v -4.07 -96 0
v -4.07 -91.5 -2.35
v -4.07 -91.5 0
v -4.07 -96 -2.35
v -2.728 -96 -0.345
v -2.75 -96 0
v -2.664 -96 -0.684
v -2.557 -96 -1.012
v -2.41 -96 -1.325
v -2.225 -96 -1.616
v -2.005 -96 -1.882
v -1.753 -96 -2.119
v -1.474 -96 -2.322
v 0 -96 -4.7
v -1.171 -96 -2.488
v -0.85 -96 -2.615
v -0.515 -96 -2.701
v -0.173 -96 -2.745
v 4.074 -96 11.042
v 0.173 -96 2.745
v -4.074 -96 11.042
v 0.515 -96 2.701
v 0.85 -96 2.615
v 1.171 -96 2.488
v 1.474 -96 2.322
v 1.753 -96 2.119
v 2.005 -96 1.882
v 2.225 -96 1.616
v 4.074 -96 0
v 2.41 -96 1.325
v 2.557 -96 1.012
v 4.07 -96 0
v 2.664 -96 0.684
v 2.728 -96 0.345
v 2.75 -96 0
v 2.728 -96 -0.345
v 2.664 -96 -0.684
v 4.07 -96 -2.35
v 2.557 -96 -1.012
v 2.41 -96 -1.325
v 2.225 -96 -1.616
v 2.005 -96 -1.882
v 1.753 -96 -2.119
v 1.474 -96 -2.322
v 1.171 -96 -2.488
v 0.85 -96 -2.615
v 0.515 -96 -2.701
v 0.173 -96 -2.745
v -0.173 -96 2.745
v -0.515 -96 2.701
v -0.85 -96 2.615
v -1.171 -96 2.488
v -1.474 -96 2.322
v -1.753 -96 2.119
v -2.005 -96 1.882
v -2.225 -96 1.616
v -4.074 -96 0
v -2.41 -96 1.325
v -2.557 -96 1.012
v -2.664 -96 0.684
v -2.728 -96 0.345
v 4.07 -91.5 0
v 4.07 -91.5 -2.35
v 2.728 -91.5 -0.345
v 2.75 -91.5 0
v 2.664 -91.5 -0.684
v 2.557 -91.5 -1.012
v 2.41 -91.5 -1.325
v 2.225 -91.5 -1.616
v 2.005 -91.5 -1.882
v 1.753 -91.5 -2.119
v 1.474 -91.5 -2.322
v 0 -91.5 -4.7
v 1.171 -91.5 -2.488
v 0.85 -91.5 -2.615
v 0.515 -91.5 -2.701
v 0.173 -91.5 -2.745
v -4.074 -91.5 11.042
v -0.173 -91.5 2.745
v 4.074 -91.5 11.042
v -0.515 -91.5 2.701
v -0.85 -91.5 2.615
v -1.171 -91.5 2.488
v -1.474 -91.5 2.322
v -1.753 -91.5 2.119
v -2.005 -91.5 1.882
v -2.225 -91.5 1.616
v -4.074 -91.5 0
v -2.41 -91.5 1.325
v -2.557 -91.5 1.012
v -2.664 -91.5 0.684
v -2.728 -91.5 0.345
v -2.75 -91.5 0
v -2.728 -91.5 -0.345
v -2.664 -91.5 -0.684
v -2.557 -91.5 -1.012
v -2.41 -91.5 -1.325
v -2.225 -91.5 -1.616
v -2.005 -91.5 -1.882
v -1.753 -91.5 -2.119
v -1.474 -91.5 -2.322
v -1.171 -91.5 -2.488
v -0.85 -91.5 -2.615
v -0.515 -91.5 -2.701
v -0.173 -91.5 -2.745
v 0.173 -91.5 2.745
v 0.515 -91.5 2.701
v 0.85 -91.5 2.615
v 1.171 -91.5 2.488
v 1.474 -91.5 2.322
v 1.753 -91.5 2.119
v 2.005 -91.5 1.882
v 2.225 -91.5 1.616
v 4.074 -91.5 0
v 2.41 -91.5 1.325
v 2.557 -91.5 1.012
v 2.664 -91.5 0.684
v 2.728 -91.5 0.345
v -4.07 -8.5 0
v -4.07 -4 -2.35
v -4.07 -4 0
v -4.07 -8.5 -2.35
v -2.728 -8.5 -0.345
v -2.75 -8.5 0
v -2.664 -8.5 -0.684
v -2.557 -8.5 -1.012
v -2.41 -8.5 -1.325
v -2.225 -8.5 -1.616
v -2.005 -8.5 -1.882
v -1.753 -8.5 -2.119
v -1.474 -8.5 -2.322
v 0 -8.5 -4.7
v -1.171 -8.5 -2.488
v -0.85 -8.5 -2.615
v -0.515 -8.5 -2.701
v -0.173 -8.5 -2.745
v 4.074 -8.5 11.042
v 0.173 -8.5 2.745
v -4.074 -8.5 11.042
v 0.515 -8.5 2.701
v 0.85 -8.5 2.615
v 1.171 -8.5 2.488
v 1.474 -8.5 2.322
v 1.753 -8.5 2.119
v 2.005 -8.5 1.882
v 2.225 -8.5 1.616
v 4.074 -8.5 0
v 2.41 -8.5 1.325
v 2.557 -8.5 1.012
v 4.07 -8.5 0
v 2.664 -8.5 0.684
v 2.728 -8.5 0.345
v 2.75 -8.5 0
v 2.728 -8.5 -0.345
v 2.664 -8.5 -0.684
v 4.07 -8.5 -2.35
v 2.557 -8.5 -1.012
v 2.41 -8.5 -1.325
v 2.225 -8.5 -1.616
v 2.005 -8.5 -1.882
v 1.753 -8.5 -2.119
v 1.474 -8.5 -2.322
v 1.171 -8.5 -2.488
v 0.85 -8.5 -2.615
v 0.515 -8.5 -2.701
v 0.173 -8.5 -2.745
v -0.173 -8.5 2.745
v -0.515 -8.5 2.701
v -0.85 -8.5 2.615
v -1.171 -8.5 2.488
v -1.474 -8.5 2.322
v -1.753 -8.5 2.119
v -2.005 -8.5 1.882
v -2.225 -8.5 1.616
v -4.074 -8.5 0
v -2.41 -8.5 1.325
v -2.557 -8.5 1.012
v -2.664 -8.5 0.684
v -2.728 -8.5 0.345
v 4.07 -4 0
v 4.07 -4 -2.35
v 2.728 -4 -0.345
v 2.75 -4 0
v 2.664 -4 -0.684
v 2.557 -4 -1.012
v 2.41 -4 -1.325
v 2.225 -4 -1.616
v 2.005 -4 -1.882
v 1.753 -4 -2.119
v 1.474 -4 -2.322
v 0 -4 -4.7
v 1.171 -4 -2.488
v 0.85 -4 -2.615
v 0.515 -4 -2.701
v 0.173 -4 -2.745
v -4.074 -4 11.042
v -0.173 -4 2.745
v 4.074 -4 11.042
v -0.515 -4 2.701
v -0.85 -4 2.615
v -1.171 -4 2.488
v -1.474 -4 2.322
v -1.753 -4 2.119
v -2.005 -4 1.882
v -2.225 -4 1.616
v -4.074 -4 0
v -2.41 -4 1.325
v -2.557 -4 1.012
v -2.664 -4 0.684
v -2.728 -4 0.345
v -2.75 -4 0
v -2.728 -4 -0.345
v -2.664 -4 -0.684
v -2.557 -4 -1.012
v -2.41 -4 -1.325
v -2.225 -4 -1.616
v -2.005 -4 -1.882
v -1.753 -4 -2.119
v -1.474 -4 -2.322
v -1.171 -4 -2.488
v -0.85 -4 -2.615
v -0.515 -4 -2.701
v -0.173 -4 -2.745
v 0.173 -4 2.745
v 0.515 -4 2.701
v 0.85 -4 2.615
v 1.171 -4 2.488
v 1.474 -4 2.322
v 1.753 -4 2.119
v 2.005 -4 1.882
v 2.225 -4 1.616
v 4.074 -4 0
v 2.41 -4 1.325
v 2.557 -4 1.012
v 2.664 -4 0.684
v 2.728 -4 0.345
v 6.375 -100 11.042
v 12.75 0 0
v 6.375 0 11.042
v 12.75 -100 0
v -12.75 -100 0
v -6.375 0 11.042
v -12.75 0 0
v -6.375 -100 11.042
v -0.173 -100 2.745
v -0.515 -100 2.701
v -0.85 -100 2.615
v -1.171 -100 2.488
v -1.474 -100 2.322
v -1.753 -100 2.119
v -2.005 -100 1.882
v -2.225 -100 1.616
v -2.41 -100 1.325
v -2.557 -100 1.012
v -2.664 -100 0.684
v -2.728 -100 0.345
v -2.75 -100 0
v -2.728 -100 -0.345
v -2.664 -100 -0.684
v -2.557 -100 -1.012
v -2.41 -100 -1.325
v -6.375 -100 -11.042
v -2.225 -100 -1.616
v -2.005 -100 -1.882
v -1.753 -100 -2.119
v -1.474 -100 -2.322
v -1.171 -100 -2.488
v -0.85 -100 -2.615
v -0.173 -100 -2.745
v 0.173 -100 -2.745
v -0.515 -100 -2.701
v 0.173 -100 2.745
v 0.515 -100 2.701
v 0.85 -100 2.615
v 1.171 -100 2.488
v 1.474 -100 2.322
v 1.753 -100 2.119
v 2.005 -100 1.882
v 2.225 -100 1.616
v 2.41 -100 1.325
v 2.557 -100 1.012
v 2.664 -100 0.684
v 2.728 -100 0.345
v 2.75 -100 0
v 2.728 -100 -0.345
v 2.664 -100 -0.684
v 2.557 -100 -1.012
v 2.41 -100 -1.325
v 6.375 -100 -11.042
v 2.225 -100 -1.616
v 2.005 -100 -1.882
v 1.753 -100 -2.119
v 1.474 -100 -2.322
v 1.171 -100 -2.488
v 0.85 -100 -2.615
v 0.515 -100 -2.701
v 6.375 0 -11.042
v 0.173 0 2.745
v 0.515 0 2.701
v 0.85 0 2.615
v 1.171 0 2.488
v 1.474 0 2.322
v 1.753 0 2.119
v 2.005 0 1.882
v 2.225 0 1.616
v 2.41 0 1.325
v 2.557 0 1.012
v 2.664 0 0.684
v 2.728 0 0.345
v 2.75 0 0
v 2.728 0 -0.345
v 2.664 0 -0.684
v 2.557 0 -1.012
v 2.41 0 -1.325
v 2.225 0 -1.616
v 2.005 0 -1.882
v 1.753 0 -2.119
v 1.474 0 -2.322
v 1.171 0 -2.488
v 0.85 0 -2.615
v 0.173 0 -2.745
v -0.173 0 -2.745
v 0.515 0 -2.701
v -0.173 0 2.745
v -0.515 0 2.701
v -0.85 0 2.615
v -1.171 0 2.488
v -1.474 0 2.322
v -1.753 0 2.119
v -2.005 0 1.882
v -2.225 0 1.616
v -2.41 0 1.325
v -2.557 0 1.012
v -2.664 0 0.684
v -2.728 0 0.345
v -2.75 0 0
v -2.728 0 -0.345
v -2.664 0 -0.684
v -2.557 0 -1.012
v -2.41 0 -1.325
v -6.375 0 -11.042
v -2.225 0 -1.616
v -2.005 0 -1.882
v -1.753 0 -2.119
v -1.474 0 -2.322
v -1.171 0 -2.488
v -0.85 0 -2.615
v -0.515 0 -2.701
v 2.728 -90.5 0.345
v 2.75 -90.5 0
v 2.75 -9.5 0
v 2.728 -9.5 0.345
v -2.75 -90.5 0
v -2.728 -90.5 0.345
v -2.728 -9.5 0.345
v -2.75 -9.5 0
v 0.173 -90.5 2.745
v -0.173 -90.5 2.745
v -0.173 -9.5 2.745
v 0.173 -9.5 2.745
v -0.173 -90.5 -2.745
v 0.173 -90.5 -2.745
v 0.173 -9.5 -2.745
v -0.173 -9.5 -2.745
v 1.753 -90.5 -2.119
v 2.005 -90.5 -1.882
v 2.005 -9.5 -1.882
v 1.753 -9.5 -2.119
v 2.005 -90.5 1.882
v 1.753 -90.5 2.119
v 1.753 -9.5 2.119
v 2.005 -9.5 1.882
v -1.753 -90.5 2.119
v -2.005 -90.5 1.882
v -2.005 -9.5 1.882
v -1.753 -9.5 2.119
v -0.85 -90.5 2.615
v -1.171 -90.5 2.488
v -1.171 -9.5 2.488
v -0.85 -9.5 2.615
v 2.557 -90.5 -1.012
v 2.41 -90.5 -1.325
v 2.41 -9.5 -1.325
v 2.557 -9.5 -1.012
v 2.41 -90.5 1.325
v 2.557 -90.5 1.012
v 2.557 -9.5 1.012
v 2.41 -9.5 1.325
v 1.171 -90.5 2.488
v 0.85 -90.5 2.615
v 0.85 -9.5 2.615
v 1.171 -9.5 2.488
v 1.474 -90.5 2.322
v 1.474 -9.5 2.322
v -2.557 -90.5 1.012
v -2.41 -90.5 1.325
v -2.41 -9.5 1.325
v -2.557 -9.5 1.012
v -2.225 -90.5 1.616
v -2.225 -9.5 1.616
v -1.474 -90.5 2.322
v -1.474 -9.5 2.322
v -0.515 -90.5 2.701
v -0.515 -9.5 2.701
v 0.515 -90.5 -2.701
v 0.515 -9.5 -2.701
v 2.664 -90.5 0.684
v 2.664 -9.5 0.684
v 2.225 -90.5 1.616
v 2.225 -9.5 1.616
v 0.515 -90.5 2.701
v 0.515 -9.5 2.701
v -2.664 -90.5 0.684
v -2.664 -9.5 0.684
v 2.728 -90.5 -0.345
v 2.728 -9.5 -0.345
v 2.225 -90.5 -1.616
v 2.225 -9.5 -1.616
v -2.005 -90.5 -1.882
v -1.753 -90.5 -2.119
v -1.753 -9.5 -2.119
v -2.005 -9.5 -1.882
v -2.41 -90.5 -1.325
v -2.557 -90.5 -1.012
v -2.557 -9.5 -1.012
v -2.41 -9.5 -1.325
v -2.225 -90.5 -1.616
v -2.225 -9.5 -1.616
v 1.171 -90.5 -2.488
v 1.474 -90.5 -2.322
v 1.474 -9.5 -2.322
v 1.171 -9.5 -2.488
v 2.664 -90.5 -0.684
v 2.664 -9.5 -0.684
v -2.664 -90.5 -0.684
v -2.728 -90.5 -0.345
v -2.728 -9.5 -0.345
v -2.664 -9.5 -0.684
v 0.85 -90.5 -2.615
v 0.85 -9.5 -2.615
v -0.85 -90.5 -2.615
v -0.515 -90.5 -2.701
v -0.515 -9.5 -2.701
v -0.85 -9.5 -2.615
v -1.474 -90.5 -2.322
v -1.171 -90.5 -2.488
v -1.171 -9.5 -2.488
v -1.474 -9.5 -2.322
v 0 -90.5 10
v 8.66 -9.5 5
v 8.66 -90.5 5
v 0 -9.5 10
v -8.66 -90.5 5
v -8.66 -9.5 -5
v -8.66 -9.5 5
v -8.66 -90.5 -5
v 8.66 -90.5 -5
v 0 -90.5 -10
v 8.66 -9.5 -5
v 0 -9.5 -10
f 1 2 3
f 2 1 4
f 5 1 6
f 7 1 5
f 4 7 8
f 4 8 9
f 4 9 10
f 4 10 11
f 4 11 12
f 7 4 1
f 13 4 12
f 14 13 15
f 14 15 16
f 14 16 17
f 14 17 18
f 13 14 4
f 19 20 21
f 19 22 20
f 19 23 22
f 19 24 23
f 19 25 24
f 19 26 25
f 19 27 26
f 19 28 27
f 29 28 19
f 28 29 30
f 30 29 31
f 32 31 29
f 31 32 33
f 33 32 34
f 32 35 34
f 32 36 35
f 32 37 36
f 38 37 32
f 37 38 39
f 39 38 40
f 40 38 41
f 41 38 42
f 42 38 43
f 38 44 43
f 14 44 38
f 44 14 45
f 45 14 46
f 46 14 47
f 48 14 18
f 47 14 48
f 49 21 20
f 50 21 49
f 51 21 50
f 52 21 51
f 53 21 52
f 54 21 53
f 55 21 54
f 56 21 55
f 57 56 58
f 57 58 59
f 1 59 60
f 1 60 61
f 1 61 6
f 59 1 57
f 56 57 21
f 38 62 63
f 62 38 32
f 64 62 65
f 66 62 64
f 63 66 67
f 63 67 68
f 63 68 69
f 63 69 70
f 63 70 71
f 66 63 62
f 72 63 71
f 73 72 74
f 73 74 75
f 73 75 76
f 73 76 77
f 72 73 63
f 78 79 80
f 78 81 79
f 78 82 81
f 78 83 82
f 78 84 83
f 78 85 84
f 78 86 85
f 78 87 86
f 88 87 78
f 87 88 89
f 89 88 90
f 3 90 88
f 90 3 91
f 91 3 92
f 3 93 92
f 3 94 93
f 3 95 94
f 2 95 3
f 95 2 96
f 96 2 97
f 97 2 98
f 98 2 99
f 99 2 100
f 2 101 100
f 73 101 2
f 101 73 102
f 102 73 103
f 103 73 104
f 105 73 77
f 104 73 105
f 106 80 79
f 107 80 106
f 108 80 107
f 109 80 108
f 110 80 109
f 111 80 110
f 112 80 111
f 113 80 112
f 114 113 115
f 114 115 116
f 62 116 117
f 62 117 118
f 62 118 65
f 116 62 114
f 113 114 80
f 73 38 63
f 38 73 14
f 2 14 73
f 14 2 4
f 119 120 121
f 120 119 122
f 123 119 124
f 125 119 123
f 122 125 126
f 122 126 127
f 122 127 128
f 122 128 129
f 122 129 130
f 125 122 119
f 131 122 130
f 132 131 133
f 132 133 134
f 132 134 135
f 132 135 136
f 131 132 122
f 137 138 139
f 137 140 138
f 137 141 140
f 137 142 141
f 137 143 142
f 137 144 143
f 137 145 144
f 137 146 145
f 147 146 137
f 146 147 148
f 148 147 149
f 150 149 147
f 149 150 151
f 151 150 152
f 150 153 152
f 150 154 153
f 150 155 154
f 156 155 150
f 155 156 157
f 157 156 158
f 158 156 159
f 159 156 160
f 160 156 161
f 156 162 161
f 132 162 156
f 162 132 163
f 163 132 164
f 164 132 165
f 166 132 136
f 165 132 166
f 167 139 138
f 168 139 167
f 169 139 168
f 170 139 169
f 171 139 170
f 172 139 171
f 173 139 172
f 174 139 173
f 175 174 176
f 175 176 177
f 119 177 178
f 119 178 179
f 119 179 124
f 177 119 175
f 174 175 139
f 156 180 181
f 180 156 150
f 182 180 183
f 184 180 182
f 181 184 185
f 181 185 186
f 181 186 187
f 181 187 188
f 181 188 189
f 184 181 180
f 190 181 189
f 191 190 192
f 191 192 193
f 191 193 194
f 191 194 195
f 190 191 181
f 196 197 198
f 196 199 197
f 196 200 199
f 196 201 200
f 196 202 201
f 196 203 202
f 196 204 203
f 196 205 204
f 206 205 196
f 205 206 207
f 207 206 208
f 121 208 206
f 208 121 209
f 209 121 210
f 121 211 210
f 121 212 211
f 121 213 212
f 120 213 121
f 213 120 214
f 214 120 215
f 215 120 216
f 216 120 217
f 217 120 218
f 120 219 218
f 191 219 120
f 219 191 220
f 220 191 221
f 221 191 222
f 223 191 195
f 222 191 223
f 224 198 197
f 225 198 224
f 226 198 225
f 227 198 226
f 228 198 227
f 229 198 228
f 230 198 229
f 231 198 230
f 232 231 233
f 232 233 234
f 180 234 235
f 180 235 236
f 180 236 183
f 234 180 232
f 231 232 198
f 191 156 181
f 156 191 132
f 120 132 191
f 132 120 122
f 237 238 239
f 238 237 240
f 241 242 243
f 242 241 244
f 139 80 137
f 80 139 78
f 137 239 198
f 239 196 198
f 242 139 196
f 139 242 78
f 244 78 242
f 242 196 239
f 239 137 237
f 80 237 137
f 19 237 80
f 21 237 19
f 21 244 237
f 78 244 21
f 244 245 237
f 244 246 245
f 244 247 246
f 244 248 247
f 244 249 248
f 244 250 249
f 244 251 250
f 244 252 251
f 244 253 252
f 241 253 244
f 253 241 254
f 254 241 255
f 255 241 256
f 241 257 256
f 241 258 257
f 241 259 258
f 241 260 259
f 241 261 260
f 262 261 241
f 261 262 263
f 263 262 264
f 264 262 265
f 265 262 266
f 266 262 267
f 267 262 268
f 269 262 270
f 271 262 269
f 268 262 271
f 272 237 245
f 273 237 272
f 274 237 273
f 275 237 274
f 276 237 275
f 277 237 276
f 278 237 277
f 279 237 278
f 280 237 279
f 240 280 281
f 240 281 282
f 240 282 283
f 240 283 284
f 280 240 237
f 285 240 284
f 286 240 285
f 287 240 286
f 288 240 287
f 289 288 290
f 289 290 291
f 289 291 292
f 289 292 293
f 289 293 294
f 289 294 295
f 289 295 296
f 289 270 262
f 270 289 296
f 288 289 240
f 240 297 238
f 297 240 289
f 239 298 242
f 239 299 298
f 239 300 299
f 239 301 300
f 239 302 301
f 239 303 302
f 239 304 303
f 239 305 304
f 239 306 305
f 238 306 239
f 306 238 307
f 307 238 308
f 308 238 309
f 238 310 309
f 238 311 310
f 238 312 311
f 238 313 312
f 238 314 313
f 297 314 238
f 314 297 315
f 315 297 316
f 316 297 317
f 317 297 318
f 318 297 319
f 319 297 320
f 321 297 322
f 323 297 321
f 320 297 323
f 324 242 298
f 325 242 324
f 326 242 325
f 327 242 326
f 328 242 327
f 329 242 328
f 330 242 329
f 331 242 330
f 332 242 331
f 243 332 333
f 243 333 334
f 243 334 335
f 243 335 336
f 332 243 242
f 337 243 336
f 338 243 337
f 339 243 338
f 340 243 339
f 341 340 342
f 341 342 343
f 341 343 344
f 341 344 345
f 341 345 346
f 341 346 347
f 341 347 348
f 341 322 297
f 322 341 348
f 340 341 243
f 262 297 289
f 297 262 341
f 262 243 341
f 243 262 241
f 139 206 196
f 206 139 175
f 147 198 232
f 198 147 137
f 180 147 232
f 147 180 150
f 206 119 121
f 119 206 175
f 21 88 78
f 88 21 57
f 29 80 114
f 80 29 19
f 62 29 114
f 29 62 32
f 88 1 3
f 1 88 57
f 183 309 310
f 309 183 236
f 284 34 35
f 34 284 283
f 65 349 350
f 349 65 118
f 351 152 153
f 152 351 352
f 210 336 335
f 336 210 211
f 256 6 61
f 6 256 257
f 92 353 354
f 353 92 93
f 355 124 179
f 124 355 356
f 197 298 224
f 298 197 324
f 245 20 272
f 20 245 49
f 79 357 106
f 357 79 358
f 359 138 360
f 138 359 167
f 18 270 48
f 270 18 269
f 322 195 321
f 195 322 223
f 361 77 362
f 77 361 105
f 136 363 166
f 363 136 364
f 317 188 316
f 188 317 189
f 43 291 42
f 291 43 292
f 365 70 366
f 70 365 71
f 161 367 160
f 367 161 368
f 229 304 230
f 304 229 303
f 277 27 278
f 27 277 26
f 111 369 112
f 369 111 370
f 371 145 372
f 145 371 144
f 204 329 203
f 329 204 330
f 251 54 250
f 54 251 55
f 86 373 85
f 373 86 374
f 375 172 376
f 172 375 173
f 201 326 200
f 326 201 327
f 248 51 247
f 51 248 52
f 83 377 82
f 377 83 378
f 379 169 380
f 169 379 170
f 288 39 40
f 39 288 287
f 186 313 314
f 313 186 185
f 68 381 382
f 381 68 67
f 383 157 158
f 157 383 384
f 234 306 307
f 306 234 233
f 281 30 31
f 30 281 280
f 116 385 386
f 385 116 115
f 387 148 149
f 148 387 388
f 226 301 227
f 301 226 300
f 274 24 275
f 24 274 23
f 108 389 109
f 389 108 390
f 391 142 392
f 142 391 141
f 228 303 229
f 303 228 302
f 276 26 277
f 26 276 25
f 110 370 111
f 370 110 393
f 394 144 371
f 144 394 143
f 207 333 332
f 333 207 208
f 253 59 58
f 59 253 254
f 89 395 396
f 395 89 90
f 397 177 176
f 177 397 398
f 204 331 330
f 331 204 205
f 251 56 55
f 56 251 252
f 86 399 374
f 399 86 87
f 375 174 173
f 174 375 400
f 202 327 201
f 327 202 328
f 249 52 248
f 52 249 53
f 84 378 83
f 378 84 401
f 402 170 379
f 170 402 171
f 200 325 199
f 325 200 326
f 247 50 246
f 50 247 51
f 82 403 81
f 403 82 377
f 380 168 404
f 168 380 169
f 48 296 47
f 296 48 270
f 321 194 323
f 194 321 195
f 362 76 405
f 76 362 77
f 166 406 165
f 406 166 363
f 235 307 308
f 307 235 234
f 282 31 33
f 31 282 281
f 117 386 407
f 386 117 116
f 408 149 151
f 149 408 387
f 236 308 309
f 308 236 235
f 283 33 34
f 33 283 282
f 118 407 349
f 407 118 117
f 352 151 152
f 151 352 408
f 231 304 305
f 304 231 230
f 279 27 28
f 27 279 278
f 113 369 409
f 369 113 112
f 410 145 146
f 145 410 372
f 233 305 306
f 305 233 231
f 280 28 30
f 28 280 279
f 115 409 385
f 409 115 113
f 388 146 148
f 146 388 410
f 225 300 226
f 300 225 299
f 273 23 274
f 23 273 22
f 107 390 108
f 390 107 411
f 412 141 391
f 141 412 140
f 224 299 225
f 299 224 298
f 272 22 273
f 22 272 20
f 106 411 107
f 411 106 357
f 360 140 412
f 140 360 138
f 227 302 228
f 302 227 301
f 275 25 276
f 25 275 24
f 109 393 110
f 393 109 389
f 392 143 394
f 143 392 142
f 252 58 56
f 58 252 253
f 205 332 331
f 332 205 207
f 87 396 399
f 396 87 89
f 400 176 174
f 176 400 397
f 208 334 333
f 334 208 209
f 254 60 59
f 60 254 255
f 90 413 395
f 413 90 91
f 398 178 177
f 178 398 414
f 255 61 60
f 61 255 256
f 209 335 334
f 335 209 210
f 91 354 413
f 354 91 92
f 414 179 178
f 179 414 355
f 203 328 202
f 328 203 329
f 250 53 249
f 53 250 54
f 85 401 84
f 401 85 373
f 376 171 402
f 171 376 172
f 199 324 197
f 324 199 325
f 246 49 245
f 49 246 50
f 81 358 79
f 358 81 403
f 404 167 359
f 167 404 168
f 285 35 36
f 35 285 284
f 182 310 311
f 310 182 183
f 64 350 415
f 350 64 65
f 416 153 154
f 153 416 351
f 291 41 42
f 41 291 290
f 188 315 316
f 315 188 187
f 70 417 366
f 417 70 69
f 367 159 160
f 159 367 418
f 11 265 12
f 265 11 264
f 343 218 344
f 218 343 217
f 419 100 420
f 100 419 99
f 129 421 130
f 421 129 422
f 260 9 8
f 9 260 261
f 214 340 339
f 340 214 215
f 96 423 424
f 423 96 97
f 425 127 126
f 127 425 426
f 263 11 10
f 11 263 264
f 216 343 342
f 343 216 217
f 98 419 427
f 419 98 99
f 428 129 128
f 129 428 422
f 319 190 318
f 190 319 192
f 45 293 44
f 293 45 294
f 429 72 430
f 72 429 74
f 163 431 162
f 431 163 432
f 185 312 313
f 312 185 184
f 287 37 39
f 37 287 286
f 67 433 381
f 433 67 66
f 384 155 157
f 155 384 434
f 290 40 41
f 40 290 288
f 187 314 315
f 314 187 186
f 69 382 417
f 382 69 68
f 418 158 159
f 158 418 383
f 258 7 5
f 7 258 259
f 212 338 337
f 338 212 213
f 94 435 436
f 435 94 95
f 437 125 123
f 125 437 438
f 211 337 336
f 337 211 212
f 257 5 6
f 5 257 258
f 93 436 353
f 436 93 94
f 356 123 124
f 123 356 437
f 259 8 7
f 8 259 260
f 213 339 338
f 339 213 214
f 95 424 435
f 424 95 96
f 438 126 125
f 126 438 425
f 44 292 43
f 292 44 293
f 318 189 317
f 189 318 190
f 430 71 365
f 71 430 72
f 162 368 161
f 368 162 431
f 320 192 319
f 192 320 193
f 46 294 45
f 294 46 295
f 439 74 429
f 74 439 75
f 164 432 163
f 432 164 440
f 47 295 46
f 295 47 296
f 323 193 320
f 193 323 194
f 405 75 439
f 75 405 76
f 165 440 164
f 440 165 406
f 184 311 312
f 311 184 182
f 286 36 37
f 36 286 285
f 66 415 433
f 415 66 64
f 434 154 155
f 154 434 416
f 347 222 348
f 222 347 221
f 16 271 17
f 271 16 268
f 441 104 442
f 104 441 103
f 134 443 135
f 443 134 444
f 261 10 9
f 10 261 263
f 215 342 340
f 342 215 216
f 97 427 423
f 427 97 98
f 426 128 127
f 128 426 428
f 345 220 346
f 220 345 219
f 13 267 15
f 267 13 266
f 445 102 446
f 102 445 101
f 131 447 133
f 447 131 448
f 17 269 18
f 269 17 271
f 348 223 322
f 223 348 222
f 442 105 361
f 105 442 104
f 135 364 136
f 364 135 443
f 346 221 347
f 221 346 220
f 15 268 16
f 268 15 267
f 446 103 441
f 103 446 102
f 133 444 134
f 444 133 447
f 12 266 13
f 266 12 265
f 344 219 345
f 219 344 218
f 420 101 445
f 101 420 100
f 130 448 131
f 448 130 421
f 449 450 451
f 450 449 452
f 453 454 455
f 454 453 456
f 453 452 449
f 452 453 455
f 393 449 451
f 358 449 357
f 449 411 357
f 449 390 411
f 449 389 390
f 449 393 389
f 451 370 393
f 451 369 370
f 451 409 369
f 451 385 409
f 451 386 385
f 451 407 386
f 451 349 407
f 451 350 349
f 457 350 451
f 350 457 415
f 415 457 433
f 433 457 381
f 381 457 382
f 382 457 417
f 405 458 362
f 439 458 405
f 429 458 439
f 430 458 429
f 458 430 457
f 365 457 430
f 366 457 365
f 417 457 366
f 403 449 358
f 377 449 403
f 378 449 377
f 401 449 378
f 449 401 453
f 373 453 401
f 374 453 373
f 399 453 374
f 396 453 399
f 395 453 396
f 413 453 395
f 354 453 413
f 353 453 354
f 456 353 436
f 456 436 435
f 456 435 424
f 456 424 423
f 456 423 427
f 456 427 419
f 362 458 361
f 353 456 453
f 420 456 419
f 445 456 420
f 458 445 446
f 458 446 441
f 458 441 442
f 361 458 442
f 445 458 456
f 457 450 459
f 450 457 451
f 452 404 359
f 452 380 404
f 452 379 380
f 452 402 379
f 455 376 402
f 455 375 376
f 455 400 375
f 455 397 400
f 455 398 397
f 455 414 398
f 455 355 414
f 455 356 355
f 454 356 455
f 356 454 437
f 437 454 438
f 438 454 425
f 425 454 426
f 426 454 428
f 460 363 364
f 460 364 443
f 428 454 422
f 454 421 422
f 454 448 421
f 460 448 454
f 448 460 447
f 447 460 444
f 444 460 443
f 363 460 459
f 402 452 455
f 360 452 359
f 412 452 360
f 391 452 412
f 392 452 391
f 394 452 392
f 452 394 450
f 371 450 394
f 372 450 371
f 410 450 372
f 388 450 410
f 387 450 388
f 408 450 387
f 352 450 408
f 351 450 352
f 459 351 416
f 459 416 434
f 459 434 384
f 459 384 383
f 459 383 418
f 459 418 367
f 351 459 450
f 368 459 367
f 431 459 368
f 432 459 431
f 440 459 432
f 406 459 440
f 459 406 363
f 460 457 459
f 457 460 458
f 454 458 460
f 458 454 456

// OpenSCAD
// file: ../src/888_1001.scad
include <../parameters.scad>
//minimal length_total is 18

//variable

888_1001(50,4,20);
module 888_1001(length_total,nut_indentation,inner_diameter){
    difference(){
        translate([0,0,0])
            cylinder(h = length_total, d = M10_nut_diameter, $fn = 6);

    //nut pocket
        rotate([0,0,30]){
            translate([0,0,length_total-nut_indentation-M5_nut_height])
                cylinder(h = M5_nut_height, d = M5_nut_diameter, $fn = 6);

            translate([0,0,nut_indentation])
                cylinder(h = M5_nut_height, d = M5_nut_diameter, $fn = 6);
            }

    //insert nut hole
            translate([0,(M10_nut_diameter/4),nut_indentation+M5_nut_height/2])
                cube([M5_nut_diameter-1.252,M10_nut_diameter/2,M5_nut_height],center=true);

            translate([0,(M10_nut_diameter/4),length_total-nut_indentation-M5_nut_height/2])
                cube([M5_nut_diameter-1.252,M10_nut_diameter/2,M5_nut_height],center=true);

    //screw hole
            translate([0,0,0])
                cylinder(h = length_total, d = M5_screw_diameter, $fn = 50);

    //inner diameter
        rotate([0,0,30]){
            translate([0,0,nut_indentation+M5_nut_height+1])
                cylinder(h = length_total-nut_indentation*2-M5_nut_height*2-2, d = inner_diameter , $fn = 6);
        }
    }
}
// file: ../parameters.scad
maximum_printable_size = 150;

layer_thickness = 0.3;
global_clearance = 0.5;

platform_base_diameter = 400; // Průměr ukotvení válců spodní platformy
platform_base_thickness = 20;
platform_cylinder_medium_length = 250;  // délka pneumatického válce s pístem vysunutým do poloviny rozsahu
platform_base_cylinder_spacing = 38;    //rozestupy spodního a horního ukotvení válců.
platform_top_cylinder_spacing = 30;
platform_top_diameter = 150;   // Průměr horní základny (vdálenost od středu základny do středu kulového kloubu ke kterému je uchycen pneumatický válec)


// screw length step - minimum difference in length between two types of screws
basic_screw_length = 5;


//Screw diameter and nut for M10 [mm]
M10_screw_diameter = 10.4;
M10_head_height = 10;
M10_head_diameter = 16+0.5;
M10_nut_height = 10.5;
M10_nut_diameter = 25.5;
M10_nut_pocket = 22.3;

//Screw diameter for M8 [mm]
M8_screw_diameter = 8.6;
M8_head_height = 8;
M8_head_diameter = 13.5;
M8_nut_height = 7.5;
M8_nut_diameter = 14.4 + 0.5;
M8_nut_pocket = 13 + 0.5;

//Screw diameter and nut for M6 [mm]
M6_screw_diameter=6.5;
M6_head_diameter = 10+0.5;
M6_head_height = 6;
M6_nut_height = 4.9;
M6_nut_diameter = 11.8;
M6_nut_pocket = 10.4;
M6_square_nut_height = 3;
M6_square_nut_diameter = 10;

//Screw diameter and nut for M5 [mm]
M5_screw_diameter=5.5;
M5_head_height = 5;
M5_head_diameter = 13+0.5;
M5_nut_height = 4.5;
M5_nut_diameter = 9.4;
M5_nut_pocket = 8.4;

//Screw diameter and nut for M4 [mm]
M4_screw_diameter=4.5;
M4_screw_head_height = 4;
M4_nut_height = 3.2;
M4_nut_diameter = 8.4;
M4_nut_pocket = 7.5;

//Screw diameter and nut for M3 [mm]
M3_screw_diameter = 3.2;
M3_nut_height = 2.7;
M3_nut_diameter = 6.6;
M3_screw_head_height = 3;

//Screw diameter and nut for M2,5 [mm]
M2_5_screw_diameter = 2.7;
M2_5_nut_height = 2.3;
M2_5_nut_diameter = 6;
M2_5_nut_pocket = 5.5;

// kulove lozisko

bearing_efsm_08_h = 33+1;
bearing_efsm_08_m = 22;
bearing_efsm_08_db = 18;
bearing_efsm_08_ag = 10.5;
bearing_efsm_08_n = M4_screw_diameter;
bearing_efsm_08_a1 = 5.5;
bearing_efsm_08_d = 8.25;
bearing_efsm_08_B = 8; // ball height

bearing_efsm_10_h = 38+1;
bearing_efsm_10_m = 26;
bearing_efsm_10_db = 21.9;
bearing_efsm_10_ag = 12+0.2;
bearing_efsm_10_n = M5_screw_diameter;
bearing_efsm_10_a1 = 6.5;
bearing_efsm_10_d = 10.25;


bearing_efsm_12_width = 40+1;
bearing_efsm_12_h = bearing_efsm_12_width;
bearing_efsm_12_boltd = 28/2; // polovina vzdalenosti mezi srouby
bearing_efsm_12_m = bearing_efsm_12_boltd*2;
bearing_efsm_12_db = 25;
bearing_efsm_12_ag = 13;
bearing_efsm_12_a1 = 7;
bearing_efsm_12_n = M5_screw_diameter;
bearing_efsm_12_d = 12.15;
bearing_efsm_12_B = 10; // ball height
bearing_efsm_space = 1;

bearing_efsm_17_width = 54+1;
bearing_efsm_17_h = bearing_efsm_17_width;
bearing_efsm_17_boltd = 38/2; // polovina vzdalenosti mezi srouby
bearing_efsm_17_m = bearing_efsm_17_boltd*2;
bearing_efsm_17_db = 35;
bearing_efsm_17_ag = 18;
bearing_efsm_17_n = M6_screw_diameter;
bearing_efsm_17_a1 = 10;
bearing_efsm_17_B = 17; // ball height

//limcove lozisko
bearing_EFOM_10_L=26; //celkova sirka zakladny
bearing_EFOM_10_d1=10.3;//diametr otvoru real=10 mm
bearing_EFOM_10_dB=22;//diametr vystupku pro ulozeni lozika
bearing_EFOM_10_H=52;//celková delka zakladny
bearing_EFOM_10_J=36;// hole pitch
bearing_EFOM_10_A1=6.5;//vyska pouzdra
bearing_EFOM_10_Ag=12;//celkova vyska
bearing_EFOM_10_N1=5;//sirka otvoru pro sroub
bearing_EFOM_10_N2=8;//delka otvoru pro sroub
bearing_EFOM_10_m=36;//roztec der pro sroub
bearing_EFOM_10_h=9;//vyska lozika


608_bearing_outer_diameter = 22.3;
608_bearing_inner_diameter = 16;
608_bearing_thickness = 7.1;


// 20 KG servo parameters

servo_20kg_axis_offset = 9.375; // jak je osa mimo stredu
servo_20kg_body_x = 42;
servo_20kg_body_y = 21;
servo_20kg_body_z = 40;
servo_20kg_thread_x = 49/2;
servo_20kg_thread_y = 10/2;
servo_20kg_body_below = 10; // jak hluboko je tělo serva pod drzaky na srouby
servo_20kg_below = 25.8; // jak hluboko je páka serva pod drzaky na srouby

servo_20kg_bolt_d = 2.5+0.3;
servo_20kg_nut_d = 5+0.3;


//strain gauge
strain_gauge_width = 12.7;
strain_gauge_length = 75.1;
strain_gauge_screw_distance = 10;

//ALU profile
ALU_profile_width = 30.3;
ALU_profile_holder_wall_thickness = 3;
ALU_profile_groove_width = 8;

//pillow block bearing
//https://www.igus.eu/product/372
//Part no. KSTM-08
KSTM08_screws_distance = 33;         //m
KSTM08_screws_holes_diameter = 4.5;  //d2
KSTM08_flange_thickness = 6;         //h3
KSTM08_case_width = 9;               //C1
KSTM08_case_length = 47;             //a
KSTM08_ball_width = 12;              //B


//ložiska pro malý rotor
bearing_outer_diameter = 10.2;    // Rozměr B1 v nákresu s přídavkem na toleranci otvoru
bearing_thickness = 4;        // Rozměr B2 v nákresu
//bearing_shaft_length = 19.5;    // Rozměr B3 v nákresu, Originalni hodnota 19.5
bearing_shaft_length = 20;    // Rozměr B3 v nákresu
// main file
include <../parameters.scad>
use <../src/888_1001.scad>

rotate([90,0,0])
{
    888_1001(100,4,20);//(length_total,nut_indentation,inner_diameter)
}
